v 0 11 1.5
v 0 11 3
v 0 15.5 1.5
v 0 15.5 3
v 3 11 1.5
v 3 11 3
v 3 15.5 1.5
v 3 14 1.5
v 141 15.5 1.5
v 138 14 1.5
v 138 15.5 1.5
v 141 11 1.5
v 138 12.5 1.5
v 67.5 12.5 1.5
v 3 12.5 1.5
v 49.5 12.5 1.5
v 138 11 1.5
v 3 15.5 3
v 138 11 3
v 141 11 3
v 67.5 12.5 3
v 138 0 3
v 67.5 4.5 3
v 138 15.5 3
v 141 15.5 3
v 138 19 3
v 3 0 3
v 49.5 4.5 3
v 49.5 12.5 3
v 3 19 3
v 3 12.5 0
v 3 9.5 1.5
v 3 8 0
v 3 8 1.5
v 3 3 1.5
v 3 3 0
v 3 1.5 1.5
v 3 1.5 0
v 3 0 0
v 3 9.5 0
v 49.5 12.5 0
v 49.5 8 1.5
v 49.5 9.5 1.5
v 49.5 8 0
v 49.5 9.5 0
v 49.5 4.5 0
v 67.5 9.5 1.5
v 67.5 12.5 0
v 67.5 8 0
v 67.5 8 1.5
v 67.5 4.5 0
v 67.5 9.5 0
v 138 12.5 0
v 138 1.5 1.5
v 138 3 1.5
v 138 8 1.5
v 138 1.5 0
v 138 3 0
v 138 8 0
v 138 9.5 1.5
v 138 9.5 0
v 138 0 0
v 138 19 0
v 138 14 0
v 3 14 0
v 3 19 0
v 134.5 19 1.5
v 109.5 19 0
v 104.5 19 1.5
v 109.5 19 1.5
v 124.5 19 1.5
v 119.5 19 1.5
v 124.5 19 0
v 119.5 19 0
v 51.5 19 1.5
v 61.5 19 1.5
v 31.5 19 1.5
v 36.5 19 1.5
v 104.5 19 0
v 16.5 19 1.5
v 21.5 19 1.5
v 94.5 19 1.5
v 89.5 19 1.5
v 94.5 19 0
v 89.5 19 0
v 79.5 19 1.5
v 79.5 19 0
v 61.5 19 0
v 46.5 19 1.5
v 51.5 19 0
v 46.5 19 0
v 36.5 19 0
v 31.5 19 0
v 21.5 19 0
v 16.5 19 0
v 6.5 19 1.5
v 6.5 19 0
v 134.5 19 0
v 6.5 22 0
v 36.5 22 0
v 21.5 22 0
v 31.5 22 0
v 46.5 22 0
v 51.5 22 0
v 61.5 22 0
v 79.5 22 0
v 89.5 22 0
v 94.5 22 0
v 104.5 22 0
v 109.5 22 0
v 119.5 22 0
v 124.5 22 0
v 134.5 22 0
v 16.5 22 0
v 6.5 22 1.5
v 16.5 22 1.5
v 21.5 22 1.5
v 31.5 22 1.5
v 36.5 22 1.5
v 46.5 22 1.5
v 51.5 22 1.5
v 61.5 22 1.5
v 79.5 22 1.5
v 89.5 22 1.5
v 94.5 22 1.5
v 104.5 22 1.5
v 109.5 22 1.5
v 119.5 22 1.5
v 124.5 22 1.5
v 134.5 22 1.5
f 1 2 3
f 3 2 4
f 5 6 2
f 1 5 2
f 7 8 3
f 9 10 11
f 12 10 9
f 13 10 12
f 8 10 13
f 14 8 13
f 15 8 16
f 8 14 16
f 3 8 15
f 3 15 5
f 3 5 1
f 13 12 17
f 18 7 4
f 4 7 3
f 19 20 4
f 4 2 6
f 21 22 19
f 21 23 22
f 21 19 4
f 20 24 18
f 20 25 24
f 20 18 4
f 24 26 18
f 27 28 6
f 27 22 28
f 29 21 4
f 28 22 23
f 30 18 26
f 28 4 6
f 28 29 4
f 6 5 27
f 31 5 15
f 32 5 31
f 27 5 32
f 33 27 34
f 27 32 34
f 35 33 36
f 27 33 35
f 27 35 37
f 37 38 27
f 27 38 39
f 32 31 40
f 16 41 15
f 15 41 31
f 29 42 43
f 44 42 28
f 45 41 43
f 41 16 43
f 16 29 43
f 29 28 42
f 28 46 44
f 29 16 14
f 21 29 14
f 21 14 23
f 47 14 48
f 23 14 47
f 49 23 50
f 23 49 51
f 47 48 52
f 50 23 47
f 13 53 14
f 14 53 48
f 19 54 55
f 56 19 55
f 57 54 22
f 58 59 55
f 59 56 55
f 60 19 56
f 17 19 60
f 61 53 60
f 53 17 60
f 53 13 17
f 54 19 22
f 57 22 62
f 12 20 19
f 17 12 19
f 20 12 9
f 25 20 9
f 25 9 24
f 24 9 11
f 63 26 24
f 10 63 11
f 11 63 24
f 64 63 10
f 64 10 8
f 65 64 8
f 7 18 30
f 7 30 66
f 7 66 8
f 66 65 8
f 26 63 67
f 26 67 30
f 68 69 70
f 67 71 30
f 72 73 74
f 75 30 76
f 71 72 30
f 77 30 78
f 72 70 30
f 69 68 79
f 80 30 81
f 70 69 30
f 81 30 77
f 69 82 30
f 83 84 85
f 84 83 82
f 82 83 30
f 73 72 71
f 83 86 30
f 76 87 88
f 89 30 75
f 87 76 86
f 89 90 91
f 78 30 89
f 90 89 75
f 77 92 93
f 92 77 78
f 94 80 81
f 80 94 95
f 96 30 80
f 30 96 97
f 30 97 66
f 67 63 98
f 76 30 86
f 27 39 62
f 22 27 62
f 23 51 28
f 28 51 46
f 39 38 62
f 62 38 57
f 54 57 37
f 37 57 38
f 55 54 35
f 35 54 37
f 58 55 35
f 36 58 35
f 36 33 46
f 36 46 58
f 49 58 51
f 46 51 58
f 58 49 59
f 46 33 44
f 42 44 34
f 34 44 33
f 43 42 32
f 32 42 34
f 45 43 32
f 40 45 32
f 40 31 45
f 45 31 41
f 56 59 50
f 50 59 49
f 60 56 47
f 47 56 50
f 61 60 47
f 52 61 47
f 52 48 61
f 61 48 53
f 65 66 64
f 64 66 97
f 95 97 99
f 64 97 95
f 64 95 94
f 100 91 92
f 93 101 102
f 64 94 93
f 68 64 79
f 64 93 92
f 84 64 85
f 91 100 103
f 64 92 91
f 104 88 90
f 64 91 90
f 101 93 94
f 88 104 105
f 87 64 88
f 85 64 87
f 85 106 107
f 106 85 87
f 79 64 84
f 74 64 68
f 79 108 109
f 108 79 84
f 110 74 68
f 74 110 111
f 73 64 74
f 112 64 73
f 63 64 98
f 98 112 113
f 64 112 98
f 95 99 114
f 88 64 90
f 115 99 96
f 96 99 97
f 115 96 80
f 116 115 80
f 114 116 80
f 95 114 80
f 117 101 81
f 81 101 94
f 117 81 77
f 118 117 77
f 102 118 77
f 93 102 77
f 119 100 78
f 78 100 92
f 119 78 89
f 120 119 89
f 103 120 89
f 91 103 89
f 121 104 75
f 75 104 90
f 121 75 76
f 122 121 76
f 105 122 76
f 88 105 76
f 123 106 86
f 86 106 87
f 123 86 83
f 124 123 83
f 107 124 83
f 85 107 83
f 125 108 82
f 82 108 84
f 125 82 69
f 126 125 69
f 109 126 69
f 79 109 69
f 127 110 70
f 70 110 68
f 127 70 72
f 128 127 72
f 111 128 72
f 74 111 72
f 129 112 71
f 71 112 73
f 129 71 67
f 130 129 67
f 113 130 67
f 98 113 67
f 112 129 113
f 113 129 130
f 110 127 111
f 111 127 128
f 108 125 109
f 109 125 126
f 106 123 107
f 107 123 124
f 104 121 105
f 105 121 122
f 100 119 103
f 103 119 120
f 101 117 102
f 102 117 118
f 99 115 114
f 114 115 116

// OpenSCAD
board = 138;
edge = 1.5;

depth = 2 * edge;
width = board + 2 * edge;

groove = 1.5;
faceSpace = 5;
mountSpace = 3;
pcbSpace = 5;

notchSpacing = 5;
notchWidth = 10;
notchHeight = 3;

height =
	edge +
	groove +
	faceSpace +
	groove +
	mountSpace +
	groove +
	pcbSpace +
	notchHeight;

faceTop = edge;
mountTop = faceTop + groove + faceSpace;
pcbTop = mountTop + groove + mountSpace;
baseTop = pcbTop + groove + pcbSpace;

notchCount = 8;
notchGap = board - notchCount * (notchSpacing + notchWidth);
notch1Left = edge + notchSpacing;
notch2Left = notch1Left + notchSpacing + notchWidth;
notch3Left = notch2Left + notchSpacing + notchWidth;
notch4Left = notch3Left + notchSpacing + notchWidth;
notch5Left = notch4Left + notchGap + notchWidth;
notch6Left = notch5Left + notchSpacing + notchWidth;
notch7Left = notch6Left + notchSpacing + notchWidth;
notch8Left = notch7Left + notchSpacing + notchWidth;

module hole(x, y, z, cx, cy, cz)
{
	translate([x, y, z]) cube([cx, cy, cz]);
}

module grooveHole(y, cx)
{
	hole(2 * edge, y, 0, cx, groove, edge);
}

module notchHole(x, cx)
{
	hole(x, baseTop, 0, cx, notchHeight, edge);
}

module sideNotch(x)
{
	hole(x, 0, 0, 2 * edge, height, edge);
	hole(x, 0, edge, 2 * edge, pcbTop - edge, edge);
	hole(x, pcbTop + 2 * edge, edge, 2 * edge, 2 * edge + groove, edge);
}

difference()
{
	cube([width, height, depth]);

	grooveHole(faceTop, board);
	grooveHole(mountTop, board);
	grooveHole(pcbTop, board);

	hole(0, baseTop, edge, width, notchHeight, edge);
	notchHole(0, notch1Left);
	notchHole(notch1Left + notchWidth, notchSpacing);
	notchHole(notch2Left + notchWidth, notchSpacing);
	notchHole(notch3Left + notchWidth, notchSpacing);
	notchHole(notch4Left + notchWidth, notchGap);
	notchHole(notch5Left + notchWidth, notchSpacing);
	notchHole(notch6Left + notchWidth, notchSpacing);
	notchHole(notch7Left + notchWidth, notchSpacing);
	notchHole(notch8Left + notchWidth, notchSpacing + edge);

	sideNotch(0);
	sideNotch(board);

	hole(edge + 48, edge + groove + edge, 0, 18, faceSpace + groove + mountSpace - edge, depth);
}
